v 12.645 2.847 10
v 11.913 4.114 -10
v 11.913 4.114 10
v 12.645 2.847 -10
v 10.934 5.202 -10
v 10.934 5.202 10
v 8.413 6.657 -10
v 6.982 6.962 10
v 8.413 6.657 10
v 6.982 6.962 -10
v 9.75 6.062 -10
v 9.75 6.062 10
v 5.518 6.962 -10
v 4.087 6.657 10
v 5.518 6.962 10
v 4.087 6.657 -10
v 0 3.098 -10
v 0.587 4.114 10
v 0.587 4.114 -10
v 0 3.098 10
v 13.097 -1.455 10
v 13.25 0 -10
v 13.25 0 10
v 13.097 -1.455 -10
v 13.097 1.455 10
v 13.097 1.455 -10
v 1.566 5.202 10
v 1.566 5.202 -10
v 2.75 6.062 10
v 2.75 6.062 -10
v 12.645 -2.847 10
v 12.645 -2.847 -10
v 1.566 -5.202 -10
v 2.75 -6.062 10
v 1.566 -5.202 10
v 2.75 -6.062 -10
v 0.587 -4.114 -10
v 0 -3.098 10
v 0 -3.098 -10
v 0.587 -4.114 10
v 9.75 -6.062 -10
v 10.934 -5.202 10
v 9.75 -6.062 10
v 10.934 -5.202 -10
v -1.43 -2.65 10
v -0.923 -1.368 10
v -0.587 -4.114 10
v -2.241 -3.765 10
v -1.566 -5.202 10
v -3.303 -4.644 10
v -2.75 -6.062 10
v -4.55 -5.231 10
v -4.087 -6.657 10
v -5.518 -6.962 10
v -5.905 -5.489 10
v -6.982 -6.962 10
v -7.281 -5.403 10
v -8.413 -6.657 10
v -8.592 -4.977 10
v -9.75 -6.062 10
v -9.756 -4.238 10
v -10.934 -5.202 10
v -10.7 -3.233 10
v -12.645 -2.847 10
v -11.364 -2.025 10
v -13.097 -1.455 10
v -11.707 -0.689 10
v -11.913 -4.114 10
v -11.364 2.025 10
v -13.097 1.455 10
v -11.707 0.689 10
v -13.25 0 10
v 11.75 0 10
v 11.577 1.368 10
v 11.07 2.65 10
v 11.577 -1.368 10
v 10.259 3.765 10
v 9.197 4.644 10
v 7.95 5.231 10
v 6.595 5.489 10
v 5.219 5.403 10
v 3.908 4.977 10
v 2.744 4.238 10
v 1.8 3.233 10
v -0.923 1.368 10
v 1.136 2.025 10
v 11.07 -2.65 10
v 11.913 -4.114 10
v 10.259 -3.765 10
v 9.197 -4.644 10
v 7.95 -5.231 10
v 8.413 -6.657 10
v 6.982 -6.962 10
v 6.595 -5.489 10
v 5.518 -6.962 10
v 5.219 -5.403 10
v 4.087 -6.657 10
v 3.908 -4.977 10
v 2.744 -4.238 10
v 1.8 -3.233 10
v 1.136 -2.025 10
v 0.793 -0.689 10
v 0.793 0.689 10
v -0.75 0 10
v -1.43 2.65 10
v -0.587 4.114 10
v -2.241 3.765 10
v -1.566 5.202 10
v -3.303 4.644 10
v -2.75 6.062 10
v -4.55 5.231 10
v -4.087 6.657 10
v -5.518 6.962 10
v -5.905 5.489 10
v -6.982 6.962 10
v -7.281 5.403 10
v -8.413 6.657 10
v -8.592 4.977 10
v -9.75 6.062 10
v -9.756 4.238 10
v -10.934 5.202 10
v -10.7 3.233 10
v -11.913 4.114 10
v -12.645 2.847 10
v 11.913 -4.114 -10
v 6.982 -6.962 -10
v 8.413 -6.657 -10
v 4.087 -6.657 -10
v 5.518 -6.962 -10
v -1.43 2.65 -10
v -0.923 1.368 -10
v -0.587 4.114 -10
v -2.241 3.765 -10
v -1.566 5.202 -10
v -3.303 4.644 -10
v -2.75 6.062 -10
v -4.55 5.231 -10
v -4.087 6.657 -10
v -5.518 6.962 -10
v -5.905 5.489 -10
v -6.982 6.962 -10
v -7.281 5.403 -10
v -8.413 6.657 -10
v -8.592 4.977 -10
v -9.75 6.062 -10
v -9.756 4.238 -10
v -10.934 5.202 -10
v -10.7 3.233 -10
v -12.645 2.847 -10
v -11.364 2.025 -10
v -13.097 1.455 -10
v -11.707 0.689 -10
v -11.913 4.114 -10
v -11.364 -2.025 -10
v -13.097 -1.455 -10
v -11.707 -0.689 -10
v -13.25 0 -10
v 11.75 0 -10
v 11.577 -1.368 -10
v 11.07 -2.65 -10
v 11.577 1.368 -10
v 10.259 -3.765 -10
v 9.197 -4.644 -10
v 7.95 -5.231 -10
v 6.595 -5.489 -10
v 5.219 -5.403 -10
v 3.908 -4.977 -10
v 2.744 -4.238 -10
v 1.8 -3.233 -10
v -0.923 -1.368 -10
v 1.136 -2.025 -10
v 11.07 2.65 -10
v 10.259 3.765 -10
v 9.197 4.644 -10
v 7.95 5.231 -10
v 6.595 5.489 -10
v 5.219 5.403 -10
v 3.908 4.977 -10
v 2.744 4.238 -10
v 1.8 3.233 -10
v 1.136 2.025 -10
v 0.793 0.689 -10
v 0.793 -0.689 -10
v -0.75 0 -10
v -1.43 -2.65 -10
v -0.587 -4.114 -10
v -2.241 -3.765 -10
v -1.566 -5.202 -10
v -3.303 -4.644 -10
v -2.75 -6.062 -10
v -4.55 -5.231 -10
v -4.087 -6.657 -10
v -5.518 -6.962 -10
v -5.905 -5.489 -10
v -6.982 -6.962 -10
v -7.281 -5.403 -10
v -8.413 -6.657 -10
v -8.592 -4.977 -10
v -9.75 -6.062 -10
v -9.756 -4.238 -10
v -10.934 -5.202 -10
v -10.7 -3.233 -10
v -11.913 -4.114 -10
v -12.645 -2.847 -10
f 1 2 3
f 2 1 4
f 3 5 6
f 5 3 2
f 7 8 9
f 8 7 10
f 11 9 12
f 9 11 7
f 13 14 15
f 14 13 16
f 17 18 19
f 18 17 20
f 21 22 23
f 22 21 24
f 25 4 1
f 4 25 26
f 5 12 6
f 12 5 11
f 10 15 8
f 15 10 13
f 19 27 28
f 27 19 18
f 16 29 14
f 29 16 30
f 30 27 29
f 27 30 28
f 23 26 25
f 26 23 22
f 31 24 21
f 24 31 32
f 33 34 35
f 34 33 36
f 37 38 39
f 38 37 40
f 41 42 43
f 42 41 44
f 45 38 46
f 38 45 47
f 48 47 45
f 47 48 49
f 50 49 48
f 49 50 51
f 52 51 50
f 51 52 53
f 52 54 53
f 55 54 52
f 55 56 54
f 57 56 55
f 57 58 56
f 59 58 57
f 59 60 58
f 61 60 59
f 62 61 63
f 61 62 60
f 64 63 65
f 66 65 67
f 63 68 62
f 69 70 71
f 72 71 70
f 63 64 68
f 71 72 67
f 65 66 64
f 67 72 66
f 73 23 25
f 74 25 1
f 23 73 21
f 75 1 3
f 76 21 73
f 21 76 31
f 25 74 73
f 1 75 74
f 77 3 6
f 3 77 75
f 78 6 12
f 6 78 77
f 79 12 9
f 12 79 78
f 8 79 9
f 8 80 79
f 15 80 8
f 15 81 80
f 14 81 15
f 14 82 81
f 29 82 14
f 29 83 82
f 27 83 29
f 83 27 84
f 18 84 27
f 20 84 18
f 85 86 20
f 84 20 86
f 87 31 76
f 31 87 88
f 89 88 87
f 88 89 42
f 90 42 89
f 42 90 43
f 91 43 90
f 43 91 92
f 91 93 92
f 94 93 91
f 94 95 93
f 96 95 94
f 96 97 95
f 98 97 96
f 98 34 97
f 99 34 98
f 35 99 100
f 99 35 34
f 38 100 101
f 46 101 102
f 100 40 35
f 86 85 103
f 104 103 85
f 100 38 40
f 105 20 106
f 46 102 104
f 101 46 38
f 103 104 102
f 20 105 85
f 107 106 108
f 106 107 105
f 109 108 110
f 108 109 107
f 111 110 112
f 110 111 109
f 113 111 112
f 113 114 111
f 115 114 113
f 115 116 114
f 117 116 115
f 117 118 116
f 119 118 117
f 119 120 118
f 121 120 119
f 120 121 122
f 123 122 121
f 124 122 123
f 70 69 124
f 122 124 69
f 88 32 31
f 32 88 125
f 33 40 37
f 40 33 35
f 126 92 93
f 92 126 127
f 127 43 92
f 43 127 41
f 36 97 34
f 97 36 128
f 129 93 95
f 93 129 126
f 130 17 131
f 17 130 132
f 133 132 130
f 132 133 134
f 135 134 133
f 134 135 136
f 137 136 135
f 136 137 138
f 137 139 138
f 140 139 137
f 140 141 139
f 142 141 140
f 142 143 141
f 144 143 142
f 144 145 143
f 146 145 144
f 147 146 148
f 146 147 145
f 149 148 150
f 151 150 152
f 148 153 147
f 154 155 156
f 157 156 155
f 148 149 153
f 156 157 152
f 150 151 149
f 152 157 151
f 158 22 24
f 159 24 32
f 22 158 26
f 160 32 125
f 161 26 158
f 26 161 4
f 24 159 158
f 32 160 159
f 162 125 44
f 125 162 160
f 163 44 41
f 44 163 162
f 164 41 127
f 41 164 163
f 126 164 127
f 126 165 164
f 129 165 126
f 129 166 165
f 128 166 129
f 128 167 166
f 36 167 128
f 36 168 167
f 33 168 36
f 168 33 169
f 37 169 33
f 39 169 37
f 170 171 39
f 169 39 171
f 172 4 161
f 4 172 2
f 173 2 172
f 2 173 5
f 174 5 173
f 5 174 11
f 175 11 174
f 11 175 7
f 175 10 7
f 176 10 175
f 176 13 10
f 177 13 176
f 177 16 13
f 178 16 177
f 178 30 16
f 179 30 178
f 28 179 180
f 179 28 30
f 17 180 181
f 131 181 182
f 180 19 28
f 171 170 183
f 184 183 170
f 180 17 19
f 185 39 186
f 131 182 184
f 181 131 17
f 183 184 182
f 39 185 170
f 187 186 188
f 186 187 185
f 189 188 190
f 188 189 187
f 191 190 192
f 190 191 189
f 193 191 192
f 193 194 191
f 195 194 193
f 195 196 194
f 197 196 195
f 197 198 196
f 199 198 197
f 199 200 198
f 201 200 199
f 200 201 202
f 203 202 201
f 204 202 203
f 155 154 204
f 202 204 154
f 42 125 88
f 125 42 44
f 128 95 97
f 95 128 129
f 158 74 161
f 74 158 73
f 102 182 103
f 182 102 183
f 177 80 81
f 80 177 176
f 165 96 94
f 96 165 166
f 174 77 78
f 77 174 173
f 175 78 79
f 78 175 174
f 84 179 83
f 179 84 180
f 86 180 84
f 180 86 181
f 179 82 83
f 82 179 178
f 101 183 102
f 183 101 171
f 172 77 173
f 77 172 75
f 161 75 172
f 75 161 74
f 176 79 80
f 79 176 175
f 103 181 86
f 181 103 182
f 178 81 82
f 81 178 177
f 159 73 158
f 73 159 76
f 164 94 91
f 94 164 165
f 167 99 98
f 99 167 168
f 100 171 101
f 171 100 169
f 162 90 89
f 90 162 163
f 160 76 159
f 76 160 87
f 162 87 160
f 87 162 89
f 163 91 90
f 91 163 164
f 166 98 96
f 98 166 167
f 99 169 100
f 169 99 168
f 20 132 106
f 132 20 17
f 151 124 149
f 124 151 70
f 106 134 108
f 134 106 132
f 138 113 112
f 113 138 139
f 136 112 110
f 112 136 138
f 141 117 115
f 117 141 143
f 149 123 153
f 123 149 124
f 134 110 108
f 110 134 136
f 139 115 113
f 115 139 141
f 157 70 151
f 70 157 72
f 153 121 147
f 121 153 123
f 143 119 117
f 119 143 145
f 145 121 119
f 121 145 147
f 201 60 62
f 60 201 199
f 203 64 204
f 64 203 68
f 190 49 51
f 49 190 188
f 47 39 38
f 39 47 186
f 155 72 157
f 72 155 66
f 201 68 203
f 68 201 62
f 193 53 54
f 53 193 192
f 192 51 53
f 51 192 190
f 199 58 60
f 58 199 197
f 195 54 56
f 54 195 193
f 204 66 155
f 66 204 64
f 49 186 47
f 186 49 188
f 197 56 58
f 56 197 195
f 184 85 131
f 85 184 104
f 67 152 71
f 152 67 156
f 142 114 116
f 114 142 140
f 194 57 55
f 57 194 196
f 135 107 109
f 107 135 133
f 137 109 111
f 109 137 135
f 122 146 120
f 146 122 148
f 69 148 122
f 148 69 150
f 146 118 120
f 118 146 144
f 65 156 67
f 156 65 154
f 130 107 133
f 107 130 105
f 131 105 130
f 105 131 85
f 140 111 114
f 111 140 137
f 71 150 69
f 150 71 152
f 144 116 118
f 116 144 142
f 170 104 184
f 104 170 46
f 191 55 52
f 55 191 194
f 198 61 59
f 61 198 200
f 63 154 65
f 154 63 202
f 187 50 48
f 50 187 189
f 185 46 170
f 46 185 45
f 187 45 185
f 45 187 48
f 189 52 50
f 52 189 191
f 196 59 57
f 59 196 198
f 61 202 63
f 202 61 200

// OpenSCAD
module ring(height = 10) {
    difference() {
        cylinder(h=height, r=7, $fn=30, center = true);
        cylinder(h=height, r=5.5, $fn=25, center = true);
    }
}

translate([6.25, 0, 0]) {
    ring(20);
}

translate([-6.25, 0, 0]) {
    ring(20);
}
